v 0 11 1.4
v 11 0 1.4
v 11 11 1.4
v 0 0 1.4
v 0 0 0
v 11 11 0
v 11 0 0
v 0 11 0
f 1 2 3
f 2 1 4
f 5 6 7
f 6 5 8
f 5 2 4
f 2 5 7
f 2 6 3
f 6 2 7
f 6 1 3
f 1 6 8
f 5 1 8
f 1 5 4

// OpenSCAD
/* Warning, this is a very basic generator with a lot of approximation 
input data : [LFBGA, HFX, 11x11x1.4mm, 169, , B, C04-00365B]
generated by com.zoubworld.electronics.cad.model3d.Basic
Date : Sun Feb 15 10:50:48 CET 2026
*/

//body
color("black")
translate([0,0,0])
cube([11.0,11.0,1.4], center=false);
